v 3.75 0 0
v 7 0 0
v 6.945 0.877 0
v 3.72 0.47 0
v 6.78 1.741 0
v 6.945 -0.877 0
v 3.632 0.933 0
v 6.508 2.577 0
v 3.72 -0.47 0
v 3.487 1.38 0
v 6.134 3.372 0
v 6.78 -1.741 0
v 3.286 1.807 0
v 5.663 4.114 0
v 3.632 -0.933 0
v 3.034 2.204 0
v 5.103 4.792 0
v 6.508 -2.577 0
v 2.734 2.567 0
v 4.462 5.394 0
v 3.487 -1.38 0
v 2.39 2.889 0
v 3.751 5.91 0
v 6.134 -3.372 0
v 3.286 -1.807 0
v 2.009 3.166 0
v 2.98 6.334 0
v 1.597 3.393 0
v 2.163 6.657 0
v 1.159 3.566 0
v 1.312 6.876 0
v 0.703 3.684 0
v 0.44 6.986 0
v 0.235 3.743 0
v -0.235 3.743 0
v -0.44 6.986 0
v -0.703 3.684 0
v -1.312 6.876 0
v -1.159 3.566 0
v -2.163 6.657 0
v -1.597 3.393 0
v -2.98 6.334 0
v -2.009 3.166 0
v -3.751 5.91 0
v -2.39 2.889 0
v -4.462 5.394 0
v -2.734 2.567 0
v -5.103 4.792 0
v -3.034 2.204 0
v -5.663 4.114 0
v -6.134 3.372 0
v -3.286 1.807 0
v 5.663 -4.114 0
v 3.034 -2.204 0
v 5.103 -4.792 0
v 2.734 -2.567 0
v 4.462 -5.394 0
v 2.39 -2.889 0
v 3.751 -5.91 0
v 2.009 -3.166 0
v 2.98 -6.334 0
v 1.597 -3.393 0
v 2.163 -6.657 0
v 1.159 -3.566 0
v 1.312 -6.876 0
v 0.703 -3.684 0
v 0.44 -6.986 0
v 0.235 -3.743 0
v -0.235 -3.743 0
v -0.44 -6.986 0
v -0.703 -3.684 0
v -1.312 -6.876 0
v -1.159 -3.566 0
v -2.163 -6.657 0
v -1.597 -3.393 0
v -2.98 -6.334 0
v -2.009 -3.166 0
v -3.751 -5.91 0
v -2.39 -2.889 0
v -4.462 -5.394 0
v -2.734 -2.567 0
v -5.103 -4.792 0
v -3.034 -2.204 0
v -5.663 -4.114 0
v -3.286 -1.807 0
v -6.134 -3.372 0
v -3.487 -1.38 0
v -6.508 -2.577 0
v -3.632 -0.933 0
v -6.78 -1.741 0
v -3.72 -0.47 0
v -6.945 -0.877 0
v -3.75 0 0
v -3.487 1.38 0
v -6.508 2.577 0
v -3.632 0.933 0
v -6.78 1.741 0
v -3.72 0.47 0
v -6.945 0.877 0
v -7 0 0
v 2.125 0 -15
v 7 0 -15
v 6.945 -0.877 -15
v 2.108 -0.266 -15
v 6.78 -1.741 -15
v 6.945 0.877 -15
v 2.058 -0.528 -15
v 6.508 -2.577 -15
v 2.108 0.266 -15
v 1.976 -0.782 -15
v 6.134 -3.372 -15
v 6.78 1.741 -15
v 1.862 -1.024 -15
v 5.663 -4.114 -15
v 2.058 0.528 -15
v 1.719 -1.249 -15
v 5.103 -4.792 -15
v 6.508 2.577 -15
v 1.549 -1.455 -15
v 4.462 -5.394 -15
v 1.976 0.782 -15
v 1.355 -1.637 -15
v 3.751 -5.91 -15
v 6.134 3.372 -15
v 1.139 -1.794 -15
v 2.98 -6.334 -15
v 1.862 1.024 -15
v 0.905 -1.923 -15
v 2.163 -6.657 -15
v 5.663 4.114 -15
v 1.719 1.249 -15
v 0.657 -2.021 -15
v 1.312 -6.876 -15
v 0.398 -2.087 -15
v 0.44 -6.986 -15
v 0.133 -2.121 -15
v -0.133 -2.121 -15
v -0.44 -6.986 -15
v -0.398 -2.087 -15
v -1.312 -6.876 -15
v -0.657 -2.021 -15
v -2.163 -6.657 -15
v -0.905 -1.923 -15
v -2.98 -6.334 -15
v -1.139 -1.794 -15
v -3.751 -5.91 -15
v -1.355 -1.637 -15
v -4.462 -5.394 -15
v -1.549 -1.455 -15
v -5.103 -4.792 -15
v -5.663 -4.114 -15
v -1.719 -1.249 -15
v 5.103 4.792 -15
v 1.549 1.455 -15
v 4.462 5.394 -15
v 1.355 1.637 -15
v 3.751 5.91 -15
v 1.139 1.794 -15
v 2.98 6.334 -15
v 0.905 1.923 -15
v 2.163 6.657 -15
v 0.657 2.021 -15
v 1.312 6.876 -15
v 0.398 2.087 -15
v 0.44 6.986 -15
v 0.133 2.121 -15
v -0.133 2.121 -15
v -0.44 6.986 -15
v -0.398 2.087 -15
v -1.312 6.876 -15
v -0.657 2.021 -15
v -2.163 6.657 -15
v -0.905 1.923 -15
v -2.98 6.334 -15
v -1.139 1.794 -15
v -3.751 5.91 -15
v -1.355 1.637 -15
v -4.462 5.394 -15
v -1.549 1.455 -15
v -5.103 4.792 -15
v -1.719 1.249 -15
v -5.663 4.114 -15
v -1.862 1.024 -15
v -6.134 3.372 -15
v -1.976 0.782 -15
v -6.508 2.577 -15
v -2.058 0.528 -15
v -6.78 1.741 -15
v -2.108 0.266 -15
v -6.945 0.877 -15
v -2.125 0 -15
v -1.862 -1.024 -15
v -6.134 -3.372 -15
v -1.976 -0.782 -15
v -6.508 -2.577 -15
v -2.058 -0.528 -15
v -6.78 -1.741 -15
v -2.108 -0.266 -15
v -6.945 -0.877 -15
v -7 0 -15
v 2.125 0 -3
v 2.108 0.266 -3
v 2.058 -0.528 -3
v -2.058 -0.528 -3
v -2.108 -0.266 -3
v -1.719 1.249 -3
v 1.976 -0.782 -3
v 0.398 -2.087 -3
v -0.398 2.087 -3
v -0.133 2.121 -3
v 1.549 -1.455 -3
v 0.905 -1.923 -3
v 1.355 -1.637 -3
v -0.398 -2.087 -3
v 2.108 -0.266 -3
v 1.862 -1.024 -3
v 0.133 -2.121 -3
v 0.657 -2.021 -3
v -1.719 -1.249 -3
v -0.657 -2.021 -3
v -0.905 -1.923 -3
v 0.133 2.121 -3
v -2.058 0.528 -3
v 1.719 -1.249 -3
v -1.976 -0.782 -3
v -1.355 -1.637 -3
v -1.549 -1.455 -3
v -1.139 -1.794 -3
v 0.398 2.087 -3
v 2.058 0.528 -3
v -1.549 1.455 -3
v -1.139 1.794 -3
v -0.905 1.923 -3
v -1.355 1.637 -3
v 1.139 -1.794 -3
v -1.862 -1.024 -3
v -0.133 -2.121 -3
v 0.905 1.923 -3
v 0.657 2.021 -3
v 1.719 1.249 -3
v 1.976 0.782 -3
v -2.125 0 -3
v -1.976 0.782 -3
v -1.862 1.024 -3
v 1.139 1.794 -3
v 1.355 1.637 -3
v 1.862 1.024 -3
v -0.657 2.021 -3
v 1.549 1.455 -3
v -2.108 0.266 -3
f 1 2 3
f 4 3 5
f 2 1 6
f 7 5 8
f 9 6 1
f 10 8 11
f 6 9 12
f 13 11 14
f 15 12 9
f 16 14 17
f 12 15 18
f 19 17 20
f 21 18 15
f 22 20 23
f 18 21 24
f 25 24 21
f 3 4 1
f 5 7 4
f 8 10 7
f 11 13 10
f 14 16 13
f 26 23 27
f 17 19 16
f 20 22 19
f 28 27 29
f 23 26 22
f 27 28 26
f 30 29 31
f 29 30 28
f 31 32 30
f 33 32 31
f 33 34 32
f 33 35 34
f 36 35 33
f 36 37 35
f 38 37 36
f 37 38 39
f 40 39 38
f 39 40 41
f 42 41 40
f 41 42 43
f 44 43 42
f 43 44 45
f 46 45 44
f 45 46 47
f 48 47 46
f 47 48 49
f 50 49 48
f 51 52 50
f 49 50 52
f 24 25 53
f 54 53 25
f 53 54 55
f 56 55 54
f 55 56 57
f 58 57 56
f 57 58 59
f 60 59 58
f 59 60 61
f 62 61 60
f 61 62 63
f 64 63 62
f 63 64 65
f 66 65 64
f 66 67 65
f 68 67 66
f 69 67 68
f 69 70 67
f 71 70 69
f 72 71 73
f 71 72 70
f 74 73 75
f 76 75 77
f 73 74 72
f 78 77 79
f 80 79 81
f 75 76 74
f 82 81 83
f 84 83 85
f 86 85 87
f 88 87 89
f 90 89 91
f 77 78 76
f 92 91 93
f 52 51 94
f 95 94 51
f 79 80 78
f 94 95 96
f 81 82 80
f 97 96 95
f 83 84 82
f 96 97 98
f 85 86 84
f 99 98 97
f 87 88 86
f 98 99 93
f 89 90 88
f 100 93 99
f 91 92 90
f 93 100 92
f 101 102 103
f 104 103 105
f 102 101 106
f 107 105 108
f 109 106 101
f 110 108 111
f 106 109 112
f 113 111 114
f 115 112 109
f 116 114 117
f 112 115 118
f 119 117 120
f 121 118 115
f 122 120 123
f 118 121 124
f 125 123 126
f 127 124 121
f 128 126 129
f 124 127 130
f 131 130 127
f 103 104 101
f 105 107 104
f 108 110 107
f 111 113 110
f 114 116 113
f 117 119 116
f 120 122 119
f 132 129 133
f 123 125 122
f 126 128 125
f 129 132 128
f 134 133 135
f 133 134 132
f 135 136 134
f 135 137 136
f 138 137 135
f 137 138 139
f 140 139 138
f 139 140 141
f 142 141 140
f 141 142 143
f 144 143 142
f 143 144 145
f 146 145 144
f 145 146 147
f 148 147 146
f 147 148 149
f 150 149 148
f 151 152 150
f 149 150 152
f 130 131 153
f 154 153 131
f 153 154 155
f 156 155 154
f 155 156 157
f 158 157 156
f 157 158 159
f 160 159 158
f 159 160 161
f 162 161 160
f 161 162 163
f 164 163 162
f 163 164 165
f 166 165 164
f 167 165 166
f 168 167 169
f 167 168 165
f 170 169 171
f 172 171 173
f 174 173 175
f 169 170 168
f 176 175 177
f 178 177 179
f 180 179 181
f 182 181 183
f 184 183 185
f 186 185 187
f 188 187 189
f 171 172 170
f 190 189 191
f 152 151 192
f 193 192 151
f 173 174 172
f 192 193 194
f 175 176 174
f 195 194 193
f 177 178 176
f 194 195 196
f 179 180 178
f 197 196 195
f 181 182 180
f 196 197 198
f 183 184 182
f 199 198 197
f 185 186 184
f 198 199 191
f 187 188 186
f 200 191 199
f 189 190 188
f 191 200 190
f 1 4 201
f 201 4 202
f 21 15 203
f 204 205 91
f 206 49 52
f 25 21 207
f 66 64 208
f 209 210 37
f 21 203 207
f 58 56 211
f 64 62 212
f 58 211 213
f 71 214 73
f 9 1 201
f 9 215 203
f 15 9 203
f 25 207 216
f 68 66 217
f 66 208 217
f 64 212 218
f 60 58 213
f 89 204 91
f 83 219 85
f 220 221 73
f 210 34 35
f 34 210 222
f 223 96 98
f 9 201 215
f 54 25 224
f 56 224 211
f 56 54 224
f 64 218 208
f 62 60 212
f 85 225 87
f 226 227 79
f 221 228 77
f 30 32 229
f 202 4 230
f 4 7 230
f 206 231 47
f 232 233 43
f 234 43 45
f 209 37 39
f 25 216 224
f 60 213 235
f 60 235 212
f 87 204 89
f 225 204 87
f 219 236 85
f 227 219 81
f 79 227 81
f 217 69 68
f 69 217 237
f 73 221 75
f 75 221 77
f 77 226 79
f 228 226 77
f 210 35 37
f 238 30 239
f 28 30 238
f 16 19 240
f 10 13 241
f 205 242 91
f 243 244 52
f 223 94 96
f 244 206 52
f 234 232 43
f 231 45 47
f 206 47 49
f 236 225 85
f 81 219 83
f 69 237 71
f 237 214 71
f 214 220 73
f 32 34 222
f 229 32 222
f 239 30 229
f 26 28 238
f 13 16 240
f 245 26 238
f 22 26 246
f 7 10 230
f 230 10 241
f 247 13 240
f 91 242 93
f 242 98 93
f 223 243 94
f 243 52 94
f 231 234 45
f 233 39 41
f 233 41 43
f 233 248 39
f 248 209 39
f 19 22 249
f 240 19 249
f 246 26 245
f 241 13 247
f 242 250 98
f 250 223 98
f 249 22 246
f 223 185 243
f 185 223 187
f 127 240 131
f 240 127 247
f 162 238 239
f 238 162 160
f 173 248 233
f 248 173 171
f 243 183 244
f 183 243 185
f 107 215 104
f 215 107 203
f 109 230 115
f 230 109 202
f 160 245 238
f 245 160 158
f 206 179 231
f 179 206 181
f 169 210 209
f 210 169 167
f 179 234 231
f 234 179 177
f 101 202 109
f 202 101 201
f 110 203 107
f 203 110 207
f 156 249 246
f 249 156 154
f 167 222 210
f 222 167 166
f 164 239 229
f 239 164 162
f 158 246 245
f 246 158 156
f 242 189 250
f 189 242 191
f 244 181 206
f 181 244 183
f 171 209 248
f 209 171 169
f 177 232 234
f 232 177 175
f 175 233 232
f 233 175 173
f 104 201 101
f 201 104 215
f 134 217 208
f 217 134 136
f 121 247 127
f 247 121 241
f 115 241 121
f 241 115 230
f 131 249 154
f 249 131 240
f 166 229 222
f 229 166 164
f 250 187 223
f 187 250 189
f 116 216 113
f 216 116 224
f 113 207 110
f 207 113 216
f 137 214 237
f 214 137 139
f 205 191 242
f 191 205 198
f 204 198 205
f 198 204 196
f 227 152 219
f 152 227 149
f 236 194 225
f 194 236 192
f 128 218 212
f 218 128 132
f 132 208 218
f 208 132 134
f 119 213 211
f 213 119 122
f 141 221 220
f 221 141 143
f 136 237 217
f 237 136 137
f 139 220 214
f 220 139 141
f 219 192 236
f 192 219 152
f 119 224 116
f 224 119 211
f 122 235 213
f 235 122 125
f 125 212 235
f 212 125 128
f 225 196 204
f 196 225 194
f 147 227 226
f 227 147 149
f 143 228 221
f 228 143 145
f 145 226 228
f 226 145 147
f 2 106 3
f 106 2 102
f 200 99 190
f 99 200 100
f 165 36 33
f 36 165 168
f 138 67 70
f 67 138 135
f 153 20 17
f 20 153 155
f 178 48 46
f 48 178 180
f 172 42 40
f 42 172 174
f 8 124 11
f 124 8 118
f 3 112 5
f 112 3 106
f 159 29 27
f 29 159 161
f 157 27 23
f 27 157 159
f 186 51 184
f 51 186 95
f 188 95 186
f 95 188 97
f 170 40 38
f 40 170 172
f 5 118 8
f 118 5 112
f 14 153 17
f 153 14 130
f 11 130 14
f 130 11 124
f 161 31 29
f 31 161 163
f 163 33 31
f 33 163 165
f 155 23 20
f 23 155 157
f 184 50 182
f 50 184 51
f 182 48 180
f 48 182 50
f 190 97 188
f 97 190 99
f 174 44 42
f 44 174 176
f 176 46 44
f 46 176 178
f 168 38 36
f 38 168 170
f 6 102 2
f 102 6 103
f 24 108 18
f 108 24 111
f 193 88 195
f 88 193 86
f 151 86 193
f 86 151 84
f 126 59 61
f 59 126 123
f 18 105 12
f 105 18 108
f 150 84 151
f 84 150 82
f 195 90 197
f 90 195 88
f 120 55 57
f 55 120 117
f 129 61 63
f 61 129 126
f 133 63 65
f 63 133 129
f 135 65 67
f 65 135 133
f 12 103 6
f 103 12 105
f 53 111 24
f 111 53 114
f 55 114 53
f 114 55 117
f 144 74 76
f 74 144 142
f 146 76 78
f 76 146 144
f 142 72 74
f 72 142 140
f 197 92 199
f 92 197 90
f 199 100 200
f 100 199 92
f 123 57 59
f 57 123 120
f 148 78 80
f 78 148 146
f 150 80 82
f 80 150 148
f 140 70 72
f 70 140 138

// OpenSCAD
$fn = 50;


difference() {
	union() {
		translate(v = [0, 0, -15.0000000000]) {
			cylinder(h = 15, r = 7.0000000000);
		}
		cylinder(h = 0, r = 17.0000000000);
	}
	union() {
		translate(v = [0, 0, 0]) {
			rotate(a = [0, 0, 0]) {
				difference() {
					union() {
						#translate(v = [0, 0, -15.0000000000]) {
							cylinder(h = 15, r = 2.0000000000);
						}
						#translate(v = [0, 0, -3]) {
							cylinder(h = 3, r = 7.0000000000, r1 = 2.1250000000, r2 = 3.7500000000);
						}
						#translate(v = [0, 0, -15.0000000000]) {
							cylinder(h = 15, r = 2.1250000000);
						}
						#translate(v = [0, 0, -15.0000000000]) {
							cylinder(h = 15, r = 2.0000000000);
						}
					}
					union();
				}
			}
		}
	}
}
